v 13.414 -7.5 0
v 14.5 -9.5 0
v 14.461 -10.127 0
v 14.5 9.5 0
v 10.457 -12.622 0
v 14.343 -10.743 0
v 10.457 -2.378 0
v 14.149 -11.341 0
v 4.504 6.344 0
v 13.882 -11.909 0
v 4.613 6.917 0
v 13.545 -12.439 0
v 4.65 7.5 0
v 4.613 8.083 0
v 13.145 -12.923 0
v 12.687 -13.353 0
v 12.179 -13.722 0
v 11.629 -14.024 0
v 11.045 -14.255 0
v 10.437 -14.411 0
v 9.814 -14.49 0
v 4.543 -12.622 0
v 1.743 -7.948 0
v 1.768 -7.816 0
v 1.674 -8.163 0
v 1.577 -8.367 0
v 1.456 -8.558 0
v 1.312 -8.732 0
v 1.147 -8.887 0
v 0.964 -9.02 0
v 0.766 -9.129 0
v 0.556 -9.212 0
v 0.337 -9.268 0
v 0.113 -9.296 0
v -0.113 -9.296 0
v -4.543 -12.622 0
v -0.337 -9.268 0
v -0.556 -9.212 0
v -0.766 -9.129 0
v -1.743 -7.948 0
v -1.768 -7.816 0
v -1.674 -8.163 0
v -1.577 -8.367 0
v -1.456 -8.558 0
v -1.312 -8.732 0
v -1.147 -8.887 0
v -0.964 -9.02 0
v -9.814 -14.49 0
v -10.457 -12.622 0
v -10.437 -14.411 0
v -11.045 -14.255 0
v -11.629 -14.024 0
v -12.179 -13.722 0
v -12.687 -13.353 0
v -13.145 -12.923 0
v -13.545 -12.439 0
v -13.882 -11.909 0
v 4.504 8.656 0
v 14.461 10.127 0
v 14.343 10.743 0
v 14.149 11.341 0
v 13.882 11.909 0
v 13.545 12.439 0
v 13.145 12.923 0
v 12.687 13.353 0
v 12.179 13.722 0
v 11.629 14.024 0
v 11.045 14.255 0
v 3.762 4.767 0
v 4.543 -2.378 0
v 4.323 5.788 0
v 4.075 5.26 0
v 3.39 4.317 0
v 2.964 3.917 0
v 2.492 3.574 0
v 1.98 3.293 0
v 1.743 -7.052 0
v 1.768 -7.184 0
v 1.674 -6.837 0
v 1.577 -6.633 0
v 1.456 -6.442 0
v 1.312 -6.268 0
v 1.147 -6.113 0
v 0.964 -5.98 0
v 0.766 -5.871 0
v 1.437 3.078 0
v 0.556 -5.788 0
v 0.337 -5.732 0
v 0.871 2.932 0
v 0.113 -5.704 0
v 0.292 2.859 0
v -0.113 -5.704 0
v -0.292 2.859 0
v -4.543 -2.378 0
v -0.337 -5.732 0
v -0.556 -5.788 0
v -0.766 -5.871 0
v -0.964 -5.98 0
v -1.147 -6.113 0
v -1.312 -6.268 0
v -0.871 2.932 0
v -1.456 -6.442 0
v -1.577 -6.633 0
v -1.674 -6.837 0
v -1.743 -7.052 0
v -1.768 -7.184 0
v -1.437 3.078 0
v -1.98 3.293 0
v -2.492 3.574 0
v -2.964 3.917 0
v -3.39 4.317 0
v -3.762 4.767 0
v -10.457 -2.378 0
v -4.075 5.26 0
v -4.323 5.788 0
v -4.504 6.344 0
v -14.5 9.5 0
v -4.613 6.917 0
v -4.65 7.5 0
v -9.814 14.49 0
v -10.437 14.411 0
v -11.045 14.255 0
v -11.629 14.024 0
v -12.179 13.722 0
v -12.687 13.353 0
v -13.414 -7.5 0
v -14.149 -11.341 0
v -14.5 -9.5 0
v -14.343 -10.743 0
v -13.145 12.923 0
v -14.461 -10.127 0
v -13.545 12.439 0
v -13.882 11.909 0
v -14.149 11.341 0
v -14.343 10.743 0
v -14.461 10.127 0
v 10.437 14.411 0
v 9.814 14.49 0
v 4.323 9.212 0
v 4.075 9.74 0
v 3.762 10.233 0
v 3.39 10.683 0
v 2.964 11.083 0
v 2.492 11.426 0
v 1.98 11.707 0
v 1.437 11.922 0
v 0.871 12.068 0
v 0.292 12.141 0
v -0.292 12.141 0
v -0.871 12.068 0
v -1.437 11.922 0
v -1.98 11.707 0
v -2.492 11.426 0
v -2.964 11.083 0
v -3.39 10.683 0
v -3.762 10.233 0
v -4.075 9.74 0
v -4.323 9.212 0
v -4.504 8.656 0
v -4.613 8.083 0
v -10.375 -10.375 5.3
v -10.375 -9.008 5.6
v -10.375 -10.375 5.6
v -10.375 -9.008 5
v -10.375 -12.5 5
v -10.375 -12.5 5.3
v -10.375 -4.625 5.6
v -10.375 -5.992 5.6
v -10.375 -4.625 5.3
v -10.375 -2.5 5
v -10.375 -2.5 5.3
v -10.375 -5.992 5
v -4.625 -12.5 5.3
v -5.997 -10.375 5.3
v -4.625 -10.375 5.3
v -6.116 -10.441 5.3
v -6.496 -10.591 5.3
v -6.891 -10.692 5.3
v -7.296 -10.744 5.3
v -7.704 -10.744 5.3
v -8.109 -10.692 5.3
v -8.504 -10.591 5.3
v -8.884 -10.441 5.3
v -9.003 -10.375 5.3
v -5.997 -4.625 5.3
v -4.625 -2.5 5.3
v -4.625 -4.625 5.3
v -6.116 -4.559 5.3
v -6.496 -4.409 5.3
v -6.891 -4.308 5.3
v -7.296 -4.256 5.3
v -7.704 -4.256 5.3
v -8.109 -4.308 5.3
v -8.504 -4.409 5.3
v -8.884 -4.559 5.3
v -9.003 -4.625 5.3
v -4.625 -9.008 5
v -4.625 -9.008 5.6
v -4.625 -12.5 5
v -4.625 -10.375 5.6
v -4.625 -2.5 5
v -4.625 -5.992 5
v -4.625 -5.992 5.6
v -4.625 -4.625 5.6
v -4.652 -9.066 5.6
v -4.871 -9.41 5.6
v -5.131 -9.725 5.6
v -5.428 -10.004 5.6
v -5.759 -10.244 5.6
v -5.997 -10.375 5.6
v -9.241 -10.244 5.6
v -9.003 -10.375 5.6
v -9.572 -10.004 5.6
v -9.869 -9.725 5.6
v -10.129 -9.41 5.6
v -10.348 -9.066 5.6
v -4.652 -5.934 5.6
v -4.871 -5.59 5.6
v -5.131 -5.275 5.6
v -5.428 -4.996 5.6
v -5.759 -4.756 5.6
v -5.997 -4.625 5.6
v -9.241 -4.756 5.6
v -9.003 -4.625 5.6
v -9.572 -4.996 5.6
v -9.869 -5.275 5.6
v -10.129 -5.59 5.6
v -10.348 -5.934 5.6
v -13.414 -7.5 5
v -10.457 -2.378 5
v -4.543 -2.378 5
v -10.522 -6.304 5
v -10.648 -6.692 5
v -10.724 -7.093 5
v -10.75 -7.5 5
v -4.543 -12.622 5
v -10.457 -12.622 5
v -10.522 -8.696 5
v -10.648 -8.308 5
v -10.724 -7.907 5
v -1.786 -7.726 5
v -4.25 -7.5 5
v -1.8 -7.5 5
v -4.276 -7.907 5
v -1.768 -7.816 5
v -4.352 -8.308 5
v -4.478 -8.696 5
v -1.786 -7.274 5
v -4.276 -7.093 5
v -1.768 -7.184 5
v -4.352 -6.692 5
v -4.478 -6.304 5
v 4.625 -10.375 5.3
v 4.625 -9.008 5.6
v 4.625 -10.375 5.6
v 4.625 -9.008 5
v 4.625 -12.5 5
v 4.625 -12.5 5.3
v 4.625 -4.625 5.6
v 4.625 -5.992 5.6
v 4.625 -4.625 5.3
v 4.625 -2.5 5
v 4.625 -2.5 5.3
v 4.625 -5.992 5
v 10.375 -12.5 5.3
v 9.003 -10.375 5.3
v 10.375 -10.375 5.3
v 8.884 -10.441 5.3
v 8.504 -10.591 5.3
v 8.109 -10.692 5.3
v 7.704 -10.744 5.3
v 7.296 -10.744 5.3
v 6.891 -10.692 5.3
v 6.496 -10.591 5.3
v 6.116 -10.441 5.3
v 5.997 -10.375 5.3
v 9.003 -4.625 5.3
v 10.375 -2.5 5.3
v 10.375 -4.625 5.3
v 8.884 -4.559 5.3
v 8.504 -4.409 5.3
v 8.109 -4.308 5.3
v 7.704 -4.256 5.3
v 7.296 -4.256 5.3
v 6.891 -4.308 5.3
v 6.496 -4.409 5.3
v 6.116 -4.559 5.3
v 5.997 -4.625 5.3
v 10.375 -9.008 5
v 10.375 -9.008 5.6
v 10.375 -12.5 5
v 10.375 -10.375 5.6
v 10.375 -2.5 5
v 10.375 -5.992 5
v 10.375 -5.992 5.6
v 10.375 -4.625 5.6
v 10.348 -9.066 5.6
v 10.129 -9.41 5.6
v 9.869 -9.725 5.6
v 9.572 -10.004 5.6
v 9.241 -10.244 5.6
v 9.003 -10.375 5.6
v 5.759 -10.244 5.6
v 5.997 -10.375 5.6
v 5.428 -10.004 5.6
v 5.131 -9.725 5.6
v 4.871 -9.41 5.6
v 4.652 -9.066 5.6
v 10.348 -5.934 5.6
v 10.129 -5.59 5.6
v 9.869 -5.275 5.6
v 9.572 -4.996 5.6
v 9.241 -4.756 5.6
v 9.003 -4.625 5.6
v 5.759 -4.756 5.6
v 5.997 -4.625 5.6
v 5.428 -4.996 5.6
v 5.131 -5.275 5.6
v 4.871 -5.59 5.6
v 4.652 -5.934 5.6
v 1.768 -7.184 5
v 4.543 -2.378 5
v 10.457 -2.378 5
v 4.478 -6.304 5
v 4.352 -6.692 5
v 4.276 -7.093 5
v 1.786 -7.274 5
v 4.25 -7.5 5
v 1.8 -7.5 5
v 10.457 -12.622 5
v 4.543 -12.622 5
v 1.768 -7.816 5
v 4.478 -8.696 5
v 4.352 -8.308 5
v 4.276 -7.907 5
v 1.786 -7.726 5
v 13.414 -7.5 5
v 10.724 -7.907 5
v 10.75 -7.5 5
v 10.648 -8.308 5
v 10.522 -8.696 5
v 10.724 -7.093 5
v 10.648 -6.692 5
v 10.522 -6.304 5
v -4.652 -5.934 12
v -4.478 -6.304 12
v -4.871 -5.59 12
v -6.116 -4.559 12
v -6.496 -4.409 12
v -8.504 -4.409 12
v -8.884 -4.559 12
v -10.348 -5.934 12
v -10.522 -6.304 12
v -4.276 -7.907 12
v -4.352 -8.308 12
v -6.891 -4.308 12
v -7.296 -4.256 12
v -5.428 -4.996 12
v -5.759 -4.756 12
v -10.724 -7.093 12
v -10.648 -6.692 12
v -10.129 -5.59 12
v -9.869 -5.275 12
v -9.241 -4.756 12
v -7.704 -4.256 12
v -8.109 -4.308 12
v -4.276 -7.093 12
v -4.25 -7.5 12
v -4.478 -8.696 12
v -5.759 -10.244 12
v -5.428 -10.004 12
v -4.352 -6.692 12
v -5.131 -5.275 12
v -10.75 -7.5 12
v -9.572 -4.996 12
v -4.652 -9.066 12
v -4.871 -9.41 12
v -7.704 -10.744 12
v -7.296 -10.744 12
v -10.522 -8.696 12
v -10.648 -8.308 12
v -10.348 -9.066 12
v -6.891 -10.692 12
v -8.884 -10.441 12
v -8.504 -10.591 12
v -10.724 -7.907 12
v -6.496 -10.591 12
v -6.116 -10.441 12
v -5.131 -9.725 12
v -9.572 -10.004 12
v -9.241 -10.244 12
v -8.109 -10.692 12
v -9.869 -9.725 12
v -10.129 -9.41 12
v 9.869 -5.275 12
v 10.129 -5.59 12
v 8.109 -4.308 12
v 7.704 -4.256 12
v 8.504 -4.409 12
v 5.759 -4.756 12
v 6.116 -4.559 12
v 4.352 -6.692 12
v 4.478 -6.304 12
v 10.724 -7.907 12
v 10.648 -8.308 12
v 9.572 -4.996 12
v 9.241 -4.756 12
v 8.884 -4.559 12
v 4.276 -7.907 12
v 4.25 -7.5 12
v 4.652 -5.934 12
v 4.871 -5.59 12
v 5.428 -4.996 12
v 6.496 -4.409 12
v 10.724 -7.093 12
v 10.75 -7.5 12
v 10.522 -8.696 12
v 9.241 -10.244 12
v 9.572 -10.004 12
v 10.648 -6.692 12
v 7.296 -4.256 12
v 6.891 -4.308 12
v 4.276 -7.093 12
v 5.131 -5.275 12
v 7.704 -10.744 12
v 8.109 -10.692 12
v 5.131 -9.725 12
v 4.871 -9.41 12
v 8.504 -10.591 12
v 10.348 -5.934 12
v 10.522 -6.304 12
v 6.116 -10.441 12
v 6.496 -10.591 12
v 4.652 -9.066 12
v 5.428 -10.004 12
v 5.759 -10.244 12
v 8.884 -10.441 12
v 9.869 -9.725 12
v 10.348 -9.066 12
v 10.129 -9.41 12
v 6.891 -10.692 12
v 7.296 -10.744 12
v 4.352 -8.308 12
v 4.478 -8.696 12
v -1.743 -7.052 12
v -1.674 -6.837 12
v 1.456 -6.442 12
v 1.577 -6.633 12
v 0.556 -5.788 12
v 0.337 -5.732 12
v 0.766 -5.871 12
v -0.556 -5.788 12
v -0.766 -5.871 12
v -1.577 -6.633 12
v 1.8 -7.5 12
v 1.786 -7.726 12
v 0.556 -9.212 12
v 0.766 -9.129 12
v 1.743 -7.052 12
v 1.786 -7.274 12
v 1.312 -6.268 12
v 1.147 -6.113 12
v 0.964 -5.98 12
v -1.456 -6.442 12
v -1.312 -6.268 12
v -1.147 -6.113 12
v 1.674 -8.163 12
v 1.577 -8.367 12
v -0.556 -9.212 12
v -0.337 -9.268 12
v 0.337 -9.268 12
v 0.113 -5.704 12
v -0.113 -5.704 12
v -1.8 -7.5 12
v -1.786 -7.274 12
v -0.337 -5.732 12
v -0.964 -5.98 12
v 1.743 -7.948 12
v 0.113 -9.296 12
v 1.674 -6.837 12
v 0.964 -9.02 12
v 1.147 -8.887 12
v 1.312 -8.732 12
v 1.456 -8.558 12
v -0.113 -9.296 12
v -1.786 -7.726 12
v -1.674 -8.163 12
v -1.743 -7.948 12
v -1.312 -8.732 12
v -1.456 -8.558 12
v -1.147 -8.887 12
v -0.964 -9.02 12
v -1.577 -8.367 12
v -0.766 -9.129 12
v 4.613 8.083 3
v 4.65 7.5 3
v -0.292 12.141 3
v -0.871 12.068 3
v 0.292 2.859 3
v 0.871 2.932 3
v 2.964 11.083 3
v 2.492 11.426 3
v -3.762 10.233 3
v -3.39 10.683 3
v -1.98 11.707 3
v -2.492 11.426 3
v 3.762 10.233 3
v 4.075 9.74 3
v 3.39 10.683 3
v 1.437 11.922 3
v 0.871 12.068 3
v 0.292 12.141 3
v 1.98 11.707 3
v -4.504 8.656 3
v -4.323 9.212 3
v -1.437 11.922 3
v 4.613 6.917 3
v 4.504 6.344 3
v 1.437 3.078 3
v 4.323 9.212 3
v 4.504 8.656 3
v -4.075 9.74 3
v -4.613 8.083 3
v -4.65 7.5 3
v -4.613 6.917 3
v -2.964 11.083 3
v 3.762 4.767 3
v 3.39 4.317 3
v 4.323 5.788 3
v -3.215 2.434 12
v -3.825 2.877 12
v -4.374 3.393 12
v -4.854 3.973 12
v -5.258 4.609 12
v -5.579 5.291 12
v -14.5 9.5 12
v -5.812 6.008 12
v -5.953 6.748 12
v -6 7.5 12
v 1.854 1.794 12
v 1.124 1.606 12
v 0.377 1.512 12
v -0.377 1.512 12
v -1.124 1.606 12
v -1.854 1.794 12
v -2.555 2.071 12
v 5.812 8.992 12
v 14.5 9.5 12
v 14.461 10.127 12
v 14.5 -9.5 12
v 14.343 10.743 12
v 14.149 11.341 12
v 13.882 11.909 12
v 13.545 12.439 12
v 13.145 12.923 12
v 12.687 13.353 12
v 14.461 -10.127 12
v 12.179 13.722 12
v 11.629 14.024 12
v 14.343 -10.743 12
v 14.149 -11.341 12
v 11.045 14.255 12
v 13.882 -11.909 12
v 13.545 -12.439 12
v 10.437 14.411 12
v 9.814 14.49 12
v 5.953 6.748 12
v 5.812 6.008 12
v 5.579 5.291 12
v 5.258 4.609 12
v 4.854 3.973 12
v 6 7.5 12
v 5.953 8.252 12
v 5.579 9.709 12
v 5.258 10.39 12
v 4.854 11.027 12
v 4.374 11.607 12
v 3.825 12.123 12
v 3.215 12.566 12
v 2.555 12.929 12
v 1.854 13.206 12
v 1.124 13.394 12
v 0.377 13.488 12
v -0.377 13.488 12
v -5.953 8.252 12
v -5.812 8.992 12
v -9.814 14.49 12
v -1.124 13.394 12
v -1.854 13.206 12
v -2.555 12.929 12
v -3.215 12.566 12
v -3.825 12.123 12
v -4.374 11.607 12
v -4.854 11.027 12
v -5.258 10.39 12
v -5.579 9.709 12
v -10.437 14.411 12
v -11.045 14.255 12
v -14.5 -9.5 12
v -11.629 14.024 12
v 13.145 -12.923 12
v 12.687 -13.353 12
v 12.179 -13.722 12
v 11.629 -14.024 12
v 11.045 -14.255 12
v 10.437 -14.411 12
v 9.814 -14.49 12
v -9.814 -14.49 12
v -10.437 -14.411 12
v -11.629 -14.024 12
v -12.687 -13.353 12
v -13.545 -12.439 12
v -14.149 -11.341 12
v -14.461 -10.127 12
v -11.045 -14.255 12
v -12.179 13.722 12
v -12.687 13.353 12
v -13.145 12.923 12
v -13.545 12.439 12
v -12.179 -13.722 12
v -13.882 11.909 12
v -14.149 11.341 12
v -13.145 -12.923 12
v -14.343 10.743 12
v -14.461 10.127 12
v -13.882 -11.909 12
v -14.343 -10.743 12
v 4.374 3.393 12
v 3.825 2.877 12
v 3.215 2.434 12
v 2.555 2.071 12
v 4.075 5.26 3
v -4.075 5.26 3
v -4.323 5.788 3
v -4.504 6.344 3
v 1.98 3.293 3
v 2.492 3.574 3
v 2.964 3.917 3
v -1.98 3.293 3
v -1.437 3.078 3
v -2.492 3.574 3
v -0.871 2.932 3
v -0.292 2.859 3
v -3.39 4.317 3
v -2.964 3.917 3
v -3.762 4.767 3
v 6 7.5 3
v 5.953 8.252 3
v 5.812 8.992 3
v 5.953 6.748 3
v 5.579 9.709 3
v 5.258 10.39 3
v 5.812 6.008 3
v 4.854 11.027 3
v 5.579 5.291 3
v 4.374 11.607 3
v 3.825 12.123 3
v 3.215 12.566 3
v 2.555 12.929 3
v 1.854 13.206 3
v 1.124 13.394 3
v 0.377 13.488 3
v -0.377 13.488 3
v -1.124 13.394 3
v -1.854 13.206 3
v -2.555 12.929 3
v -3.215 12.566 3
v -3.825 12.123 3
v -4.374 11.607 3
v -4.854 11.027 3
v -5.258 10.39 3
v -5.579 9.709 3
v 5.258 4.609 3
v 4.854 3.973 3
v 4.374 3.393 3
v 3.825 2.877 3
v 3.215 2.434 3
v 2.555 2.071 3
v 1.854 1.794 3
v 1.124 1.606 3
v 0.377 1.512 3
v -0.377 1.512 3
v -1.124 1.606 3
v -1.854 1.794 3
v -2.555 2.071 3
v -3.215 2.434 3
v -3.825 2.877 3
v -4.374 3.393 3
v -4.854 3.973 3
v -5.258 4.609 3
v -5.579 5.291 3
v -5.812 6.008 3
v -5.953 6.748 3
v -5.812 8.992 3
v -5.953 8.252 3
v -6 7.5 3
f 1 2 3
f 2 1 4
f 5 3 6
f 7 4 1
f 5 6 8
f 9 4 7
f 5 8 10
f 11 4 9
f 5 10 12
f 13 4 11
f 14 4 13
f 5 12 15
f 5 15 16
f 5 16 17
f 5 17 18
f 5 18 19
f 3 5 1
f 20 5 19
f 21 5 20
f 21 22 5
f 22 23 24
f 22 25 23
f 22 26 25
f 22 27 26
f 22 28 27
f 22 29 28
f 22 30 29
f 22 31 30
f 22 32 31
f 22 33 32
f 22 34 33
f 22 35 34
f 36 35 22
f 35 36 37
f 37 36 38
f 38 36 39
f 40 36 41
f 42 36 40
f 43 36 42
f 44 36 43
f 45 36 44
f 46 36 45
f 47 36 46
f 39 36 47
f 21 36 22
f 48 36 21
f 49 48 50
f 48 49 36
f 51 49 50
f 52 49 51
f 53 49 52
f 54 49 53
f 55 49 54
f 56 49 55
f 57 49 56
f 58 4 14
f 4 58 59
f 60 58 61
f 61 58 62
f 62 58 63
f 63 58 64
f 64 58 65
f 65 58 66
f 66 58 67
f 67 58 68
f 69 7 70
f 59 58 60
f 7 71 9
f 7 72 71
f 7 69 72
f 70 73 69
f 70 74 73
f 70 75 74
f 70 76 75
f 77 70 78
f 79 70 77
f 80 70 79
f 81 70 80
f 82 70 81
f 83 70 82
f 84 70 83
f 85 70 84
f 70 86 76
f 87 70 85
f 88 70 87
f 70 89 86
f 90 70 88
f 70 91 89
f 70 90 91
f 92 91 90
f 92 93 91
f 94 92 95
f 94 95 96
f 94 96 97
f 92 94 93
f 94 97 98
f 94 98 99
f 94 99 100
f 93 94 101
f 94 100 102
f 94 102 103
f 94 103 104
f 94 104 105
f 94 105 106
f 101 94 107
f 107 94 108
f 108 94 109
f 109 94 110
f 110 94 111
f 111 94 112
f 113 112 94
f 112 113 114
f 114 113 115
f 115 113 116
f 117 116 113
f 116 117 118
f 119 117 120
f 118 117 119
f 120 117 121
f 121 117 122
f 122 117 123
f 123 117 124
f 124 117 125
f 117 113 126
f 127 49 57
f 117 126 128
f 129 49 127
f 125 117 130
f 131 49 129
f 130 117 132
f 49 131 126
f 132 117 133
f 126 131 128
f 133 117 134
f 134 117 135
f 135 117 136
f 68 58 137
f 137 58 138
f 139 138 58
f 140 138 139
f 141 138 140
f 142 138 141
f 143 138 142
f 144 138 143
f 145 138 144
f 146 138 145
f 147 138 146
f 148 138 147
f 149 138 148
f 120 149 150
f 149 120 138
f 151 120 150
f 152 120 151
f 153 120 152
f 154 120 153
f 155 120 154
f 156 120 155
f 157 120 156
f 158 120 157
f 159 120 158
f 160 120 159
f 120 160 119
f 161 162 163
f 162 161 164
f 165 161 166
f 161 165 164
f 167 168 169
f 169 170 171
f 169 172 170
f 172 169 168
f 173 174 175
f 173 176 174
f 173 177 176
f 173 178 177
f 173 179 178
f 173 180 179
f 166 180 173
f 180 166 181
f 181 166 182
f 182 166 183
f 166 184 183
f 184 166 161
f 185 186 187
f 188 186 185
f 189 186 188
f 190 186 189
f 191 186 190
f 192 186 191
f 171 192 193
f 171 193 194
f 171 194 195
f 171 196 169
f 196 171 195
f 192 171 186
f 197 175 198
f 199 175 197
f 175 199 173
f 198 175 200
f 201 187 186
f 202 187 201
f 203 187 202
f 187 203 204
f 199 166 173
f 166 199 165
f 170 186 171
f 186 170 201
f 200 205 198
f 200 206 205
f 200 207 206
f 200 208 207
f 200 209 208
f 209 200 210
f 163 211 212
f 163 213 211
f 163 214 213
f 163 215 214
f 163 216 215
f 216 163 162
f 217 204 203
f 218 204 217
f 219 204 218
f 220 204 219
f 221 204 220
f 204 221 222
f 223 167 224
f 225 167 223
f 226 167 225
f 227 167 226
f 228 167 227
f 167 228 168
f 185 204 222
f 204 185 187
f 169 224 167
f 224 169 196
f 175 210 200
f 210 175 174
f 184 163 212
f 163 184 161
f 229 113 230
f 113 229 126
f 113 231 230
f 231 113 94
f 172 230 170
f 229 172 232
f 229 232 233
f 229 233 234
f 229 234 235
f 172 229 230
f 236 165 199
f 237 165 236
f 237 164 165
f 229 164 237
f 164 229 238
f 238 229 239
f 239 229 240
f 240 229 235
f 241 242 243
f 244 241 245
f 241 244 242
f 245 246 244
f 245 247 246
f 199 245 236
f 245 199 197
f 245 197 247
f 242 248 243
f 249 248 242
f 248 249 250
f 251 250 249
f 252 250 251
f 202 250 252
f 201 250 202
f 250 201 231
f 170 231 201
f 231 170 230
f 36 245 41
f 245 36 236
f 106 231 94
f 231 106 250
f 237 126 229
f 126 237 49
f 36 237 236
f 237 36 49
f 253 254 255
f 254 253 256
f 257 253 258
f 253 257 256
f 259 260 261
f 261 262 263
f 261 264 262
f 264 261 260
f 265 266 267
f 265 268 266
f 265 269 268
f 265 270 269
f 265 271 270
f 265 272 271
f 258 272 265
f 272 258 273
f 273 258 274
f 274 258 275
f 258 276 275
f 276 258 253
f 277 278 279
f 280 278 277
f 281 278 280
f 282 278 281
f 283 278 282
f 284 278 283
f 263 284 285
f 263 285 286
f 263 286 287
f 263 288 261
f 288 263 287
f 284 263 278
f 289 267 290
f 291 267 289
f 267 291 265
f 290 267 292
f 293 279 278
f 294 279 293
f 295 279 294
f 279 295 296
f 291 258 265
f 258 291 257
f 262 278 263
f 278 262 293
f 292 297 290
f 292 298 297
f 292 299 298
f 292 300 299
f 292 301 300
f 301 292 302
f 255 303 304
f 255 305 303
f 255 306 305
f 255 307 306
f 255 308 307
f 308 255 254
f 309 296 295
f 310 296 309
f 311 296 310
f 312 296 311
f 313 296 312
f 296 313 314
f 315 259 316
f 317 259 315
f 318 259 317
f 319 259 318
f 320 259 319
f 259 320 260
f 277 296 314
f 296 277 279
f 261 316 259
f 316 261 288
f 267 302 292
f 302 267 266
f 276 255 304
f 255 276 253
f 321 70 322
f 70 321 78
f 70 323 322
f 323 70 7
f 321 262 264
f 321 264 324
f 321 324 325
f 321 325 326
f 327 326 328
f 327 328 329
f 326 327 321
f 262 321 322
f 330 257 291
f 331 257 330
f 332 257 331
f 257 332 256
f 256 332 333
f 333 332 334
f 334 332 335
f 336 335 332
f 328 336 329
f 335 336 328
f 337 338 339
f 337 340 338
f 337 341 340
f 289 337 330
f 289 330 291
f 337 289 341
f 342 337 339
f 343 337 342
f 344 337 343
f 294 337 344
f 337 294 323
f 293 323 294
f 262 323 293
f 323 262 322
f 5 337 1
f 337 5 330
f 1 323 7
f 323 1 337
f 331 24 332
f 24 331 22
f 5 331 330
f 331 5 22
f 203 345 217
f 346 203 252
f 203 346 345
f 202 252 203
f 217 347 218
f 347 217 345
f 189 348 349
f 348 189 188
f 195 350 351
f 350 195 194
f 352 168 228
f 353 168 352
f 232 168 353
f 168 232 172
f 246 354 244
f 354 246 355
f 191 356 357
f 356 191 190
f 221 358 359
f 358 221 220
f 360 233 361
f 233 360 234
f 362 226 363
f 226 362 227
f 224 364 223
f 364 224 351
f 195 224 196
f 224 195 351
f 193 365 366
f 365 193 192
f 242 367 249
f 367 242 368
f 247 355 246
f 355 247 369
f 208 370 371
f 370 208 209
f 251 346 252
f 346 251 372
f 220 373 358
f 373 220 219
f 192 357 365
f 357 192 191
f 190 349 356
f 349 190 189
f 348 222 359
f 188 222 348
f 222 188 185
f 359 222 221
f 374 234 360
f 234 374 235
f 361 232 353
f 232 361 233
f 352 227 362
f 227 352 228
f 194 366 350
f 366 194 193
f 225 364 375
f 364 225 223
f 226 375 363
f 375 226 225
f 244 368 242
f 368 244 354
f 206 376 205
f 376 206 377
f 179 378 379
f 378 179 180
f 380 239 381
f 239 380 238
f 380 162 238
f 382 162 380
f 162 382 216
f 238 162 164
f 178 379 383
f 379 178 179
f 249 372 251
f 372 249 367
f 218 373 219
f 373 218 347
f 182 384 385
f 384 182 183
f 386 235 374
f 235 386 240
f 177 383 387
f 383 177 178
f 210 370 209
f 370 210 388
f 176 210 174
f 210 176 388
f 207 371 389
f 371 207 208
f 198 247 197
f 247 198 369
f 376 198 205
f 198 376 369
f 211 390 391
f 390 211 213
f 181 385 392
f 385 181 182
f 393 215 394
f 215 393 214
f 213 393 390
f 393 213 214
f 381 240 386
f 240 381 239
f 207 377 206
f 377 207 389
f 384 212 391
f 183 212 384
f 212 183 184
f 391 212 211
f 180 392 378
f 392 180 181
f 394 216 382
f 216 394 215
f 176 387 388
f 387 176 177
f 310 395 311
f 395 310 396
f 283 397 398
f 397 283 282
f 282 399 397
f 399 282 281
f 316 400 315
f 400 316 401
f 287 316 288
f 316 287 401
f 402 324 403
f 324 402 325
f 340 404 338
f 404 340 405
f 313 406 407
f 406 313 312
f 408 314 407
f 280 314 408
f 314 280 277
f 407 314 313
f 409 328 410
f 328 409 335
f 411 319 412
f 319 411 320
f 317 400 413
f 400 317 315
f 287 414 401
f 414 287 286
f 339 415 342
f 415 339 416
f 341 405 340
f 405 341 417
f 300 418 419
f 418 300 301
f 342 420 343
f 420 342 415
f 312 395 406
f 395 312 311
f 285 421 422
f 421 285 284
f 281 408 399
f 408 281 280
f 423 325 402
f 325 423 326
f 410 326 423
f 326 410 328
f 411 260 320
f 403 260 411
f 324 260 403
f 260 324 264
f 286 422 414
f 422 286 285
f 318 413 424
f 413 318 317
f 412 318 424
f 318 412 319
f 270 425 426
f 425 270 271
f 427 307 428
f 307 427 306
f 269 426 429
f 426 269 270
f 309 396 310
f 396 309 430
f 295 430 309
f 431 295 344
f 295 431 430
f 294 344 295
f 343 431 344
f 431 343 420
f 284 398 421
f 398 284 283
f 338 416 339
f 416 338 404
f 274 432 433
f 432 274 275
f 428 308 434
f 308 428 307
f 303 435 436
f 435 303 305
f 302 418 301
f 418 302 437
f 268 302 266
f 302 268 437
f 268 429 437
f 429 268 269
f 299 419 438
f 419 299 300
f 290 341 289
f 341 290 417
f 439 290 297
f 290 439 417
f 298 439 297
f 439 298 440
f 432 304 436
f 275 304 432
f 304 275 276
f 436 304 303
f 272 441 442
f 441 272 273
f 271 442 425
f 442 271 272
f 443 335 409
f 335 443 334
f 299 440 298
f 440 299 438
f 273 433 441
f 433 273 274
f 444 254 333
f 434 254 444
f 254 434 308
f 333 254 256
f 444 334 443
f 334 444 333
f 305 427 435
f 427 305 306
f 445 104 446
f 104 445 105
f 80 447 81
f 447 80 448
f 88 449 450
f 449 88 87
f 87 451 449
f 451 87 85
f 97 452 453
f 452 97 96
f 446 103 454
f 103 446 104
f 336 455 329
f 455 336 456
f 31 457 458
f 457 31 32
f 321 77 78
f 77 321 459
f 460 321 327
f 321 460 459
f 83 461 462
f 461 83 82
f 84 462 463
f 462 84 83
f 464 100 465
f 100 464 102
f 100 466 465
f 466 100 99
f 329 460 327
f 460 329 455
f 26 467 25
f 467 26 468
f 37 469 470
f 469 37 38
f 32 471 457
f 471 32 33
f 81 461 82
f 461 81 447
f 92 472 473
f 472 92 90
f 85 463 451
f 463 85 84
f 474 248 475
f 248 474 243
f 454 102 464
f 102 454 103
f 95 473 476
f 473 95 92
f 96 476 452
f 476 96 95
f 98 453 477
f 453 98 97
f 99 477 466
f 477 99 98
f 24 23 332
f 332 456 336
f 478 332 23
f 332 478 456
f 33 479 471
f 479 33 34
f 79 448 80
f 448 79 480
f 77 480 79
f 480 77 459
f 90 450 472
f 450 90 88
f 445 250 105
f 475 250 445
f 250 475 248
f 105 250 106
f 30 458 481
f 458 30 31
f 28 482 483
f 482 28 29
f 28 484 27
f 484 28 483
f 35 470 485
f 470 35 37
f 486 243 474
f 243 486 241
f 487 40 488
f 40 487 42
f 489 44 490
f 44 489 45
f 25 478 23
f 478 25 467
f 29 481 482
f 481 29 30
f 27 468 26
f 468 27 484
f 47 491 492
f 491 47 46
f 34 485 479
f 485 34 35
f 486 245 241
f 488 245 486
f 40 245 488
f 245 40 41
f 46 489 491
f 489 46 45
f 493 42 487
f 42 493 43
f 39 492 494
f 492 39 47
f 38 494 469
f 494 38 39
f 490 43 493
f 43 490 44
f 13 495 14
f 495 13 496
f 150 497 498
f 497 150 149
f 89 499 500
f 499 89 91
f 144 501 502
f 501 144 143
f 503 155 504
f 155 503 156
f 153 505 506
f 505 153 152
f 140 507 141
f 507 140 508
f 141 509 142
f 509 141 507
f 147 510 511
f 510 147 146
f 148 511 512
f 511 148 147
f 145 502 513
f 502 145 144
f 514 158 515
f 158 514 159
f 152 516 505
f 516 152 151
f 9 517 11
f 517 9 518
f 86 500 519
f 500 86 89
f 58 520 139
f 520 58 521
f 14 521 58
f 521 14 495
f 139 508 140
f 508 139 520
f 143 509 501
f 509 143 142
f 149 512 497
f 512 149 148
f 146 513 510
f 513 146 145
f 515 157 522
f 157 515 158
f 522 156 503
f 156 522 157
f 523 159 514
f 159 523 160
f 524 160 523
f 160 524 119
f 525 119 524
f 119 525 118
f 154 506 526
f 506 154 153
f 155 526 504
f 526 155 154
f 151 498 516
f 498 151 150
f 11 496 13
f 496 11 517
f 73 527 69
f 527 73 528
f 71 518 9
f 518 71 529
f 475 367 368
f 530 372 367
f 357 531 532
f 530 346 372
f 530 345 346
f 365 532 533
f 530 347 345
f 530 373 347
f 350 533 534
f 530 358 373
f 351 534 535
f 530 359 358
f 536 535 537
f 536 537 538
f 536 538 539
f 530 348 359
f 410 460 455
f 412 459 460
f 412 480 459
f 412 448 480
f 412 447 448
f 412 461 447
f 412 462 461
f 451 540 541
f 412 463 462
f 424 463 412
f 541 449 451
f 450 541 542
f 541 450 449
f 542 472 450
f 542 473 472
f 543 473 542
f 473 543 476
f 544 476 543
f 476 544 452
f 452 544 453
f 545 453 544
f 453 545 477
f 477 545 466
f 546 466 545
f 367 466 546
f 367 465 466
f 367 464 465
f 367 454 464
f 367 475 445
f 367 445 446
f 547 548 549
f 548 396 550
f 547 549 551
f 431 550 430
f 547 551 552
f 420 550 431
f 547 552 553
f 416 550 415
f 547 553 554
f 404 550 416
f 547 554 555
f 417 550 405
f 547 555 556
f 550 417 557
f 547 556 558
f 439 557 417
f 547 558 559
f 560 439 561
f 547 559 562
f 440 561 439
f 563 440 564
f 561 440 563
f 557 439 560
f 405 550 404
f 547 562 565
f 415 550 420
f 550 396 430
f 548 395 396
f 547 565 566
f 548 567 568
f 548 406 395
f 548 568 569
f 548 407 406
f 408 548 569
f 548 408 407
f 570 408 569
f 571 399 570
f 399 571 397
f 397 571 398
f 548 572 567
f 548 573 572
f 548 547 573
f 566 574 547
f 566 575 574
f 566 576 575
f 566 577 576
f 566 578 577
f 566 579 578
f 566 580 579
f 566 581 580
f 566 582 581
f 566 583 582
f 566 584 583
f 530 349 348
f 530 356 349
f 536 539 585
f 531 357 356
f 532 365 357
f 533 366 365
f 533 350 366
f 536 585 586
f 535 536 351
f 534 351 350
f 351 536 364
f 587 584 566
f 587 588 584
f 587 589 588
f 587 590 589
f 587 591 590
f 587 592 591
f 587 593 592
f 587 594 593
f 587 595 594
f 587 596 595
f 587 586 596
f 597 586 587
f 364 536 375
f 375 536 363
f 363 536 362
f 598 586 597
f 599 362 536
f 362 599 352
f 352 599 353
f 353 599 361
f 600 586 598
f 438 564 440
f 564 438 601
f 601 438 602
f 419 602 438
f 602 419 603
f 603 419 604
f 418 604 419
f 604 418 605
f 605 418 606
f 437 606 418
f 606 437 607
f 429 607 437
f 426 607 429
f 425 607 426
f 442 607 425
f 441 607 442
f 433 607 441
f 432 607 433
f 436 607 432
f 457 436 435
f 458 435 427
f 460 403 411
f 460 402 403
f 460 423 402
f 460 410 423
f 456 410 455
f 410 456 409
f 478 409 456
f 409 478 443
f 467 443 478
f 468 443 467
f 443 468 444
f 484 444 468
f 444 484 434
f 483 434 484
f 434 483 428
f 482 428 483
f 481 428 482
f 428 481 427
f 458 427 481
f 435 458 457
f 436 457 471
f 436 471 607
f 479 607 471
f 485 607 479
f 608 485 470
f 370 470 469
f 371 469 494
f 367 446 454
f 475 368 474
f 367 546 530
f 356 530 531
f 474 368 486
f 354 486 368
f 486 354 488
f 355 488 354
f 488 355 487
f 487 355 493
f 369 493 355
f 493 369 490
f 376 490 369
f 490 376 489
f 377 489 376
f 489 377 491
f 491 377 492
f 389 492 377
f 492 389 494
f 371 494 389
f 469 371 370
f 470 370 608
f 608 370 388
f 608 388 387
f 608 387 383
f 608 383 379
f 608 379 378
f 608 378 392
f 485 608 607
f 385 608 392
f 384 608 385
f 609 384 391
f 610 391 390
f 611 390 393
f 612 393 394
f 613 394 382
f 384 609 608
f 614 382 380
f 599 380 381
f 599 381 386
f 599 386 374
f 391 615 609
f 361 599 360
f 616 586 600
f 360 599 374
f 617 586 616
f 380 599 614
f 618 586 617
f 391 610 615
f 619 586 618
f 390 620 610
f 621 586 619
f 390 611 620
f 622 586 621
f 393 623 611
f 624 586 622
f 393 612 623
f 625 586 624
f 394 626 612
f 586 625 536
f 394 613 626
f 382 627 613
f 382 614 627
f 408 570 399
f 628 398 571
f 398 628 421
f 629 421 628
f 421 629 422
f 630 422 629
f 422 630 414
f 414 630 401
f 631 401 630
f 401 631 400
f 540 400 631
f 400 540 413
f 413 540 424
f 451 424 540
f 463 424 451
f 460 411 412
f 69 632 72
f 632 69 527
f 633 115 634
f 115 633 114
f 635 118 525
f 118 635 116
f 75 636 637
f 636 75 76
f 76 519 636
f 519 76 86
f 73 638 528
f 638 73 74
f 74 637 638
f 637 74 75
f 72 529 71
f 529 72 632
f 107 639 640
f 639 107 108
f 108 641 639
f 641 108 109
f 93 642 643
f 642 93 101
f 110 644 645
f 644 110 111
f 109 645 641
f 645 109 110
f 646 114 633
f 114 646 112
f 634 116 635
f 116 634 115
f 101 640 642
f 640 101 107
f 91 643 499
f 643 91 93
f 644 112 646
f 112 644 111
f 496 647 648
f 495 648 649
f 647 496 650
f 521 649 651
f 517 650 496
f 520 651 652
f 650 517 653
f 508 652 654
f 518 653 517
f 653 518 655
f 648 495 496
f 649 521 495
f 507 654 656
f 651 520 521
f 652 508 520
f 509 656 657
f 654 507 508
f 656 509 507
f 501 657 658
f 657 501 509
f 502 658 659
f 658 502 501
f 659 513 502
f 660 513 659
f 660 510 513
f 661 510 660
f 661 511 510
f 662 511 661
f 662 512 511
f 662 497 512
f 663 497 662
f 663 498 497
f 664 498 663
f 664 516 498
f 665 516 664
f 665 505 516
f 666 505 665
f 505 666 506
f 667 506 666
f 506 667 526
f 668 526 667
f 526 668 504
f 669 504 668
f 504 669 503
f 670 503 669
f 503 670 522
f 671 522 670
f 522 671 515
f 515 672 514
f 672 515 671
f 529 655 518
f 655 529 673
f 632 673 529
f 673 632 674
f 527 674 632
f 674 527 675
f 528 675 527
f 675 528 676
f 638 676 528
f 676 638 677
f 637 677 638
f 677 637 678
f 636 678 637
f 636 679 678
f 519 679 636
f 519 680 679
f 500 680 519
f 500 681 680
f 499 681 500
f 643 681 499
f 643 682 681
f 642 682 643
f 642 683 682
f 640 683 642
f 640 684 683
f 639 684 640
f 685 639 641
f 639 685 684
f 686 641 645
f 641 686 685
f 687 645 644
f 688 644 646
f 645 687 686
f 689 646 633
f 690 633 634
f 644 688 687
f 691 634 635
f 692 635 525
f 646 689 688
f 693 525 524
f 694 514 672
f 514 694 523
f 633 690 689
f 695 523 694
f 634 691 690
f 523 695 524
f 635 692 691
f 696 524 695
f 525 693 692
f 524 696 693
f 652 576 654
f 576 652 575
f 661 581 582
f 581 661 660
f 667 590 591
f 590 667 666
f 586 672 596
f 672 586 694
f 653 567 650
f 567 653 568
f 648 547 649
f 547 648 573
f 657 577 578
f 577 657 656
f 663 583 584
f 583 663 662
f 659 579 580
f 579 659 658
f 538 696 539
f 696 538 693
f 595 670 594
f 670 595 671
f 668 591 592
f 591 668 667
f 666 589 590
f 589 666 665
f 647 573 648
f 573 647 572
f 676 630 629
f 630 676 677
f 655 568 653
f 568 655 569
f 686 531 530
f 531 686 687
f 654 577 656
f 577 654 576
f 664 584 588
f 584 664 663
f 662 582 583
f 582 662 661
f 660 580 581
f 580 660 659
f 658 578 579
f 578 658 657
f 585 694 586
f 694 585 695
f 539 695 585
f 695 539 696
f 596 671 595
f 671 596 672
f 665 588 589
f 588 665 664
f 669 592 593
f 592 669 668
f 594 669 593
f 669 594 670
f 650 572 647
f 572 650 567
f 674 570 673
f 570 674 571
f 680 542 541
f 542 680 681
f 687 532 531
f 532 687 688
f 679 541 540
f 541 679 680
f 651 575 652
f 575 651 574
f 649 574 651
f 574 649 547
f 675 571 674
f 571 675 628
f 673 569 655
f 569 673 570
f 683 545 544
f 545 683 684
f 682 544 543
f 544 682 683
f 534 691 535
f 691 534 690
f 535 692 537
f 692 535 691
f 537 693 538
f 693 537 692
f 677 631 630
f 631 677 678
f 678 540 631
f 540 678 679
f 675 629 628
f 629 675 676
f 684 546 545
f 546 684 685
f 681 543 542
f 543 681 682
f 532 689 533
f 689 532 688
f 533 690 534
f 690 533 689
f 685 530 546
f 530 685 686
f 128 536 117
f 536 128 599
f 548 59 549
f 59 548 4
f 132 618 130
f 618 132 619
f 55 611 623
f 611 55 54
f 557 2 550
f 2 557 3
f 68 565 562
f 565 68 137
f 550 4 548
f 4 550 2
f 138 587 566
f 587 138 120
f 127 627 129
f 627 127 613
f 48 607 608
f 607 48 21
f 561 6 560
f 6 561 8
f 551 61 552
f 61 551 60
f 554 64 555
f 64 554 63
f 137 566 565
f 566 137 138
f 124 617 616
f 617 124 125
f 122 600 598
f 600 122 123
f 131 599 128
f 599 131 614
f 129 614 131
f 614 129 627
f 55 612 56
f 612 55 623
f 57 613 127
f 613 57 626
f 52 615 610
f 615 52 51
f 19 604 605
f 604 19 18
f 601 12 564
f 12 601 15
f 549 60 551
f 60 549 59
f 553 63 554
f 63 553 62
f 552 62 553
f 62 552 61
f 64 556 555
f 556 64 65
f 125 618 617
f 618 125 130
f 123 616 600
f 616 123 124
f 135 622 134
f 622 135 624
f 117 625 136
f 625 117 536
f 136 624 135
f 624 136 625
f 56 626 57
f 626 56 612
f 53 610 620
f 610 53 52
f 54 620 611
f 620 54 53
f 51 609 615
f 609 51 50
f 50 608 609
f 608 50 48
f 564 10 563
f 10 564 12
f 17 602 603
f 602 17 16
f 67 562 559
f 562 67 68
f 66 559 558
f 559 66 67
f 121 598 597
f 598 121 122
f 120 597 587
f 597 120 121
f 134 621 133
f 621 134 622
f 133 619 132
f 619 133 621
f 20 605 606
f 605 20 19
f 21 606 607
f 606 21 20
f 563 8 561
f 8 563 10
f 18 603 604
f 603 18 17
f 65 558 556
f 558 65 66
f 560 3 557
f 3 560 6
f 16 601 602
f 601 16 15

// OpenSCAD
$fn = 50;


difference() {
	union() {
		hull() {
			translate(v = [-9.5000000000, 9.5000000000, 0]) {
				cylinder(h = 12, r = 5);
			}
			translate(v = [9.5000000000, 9.5000000000, 0]) {
				cylinder(h = 12, r = 5);
			}
			translate(v = [-9.5000000000, -9.5000000000, 0]) {
				cylinder(h = 12, r = 5);
			}
			translate(v = [9.5000000000, -9.5000000000, 0]) {
				cylinder(h = 12, r = 5);
			}
		}
	}
	union() {
		translate(v = [-7.5000000000, -7.5000000000, 0]) {
			rotate(a = [0, 0, 0]) {
				difference() {
					union() {
						#translate(v = [-2.8750000000, -5.0000000000, -0.3000000000]) {
							cube(size = [5.7500000000, 10, 0.3000000000]);
						}
						#translate(v = [-2.8750000000, -2.8750000000, -0.6000000000]) {
							cube(size = [5.7500000000, 5.7500000000, 0.3000000000]);
						}
						#translate(v = [-2.8750000000, -5.0000000000, 5]) {
							cube(size = [5.7500000000, 10, 0.3000000000]);
						}
						#translate(v = [-2.8750000000, -2.8750000000, 5.3000000000]) {
							cube(size = [5.7500000000, 5.7500000000, 0.3000000000]);
						}
						#linear_extrude(height = 5) {
							polygon(points = [[5.9142500000, 0.0000000000], [2.9571250000, 5.1218907443], [-2.9571250000, 5.1218907443], [-5.9142500000, 0.0000000000], [-2.9571250000, -5.1218907443], [2.9571250000, -5.1218907443]]);
						}
						#translate(v = [-2.8750000000, -5.0000000000, -0.3000000000]) {
							cube(size = [5.7500000000, 10, 0.3000000000]);
						}
						#translate(v = [-2.8750000000, -2.8750000000, -0.6000000000]) {
							cube(size = [5.7500000000, 5.7500000000, 0.3000000000]);
						}
						#translate(v = [-2.8750000000, -5.0000000000, 5]) {
							cube(size = [5.7500000000, 10, 0.3000000000]);
						}
						#translate(v = [-2.8750000000, -2.8750000000, 5.3000000000]) {
							cube(size = [5.7500000000, 5.7500000000, 0.3000000000]);
						}
						#translate(v = [-2.8750000000, -5.0000000000, -0.3000000000]) {
							cube(size = [5.7500000000, 10, 0.3000000000]);
						}
						#translate(v = [-2.8750000000, -2.8750000000, -0.6000000000]) {
							cube(size = [5.7500000000, 5.7500000000, 0.3000000000]);
						}
						#translate(v = [-2.8750000000, -5.0000000000, 5]) {
							cube(size = [5.7500000000, 10, 0.3000000000]);
						}
						#translate(v = [-2.8750000000, -2.8750000000, 5.3000000000]) {
							cube(size = [5.7500000000, 5.7500000000, 0.3000000000]);
						}
					}
					union();
				}
			}
		}
		translate(v = [7.5000000000, -7.5000000000, 0]) {
			rotate(a = [0, 0, 0]) {
				difference() {
					union() {
						#translate(v = [-2.8750000000, -5.0000000000, -0.3000000000]) {
							cube(size = [5.7500000000, 10, 0.3000000000]);
						}
						#translate(v = [-2.8750000000, -2.8750000000, -0.6000000000]) {
							cube(size = [5.7500000000, 5.7500000000, 0.3000000000]);
						}
						#translate(v = [-2.8750000000, -5.0000000000, 5]) {
							cube(size = [5.7500000000, 10, 0.3000000000]);
						}
						#translate(v = [-2.8750000000, -2.8750000000, 5.3000000000]) {
							cube(size = [5.7500000000, 5.7500000000, 0.3000000000]);
						}
						#linear_extrude(height = 5) {
							polygon(points = [[5.9142500000, 0.0000000000], [2.9571250000, 5.1218907443], [-2.9571250000, 5.1218907443], [-5.9142500000, 0.0000000000], [-2.9571250000, -5.1218907443], [2.9571250000, -5.1218907443]]);
						}
						#translate(v = [-2.8750000000, -5.0000000000, -0.3000000000]) {
							cube(size = [5.7500000000, 10, 0.3000000000]);
						}
						#translate(v = [-2.8750000000, -2.8750000000, -0.6000000000]) {
							cube(size = [5.7500000000, 5.7500000000, 0.3000000000]);
						}
						#translate(v = [-2.8750000000, -5.0000000000, 5]) {
							cube(size = [5.7500000000, 10, 0.3000000000]);
						}
						#translate(v = [-2.8750000000, -2.8750000000, 5.3000000000]) {
							cube(size = [5.7500000000, 5.7500000000, 0.3000000000]);
						}
						#translate(v = [-2.8750000000, -5.0000000000, -0.3000000000]) {
							cube(size = [5.7500000000, 10, 0.3000000000]);
						}
						#translate(v = [-2.8750000000, -2.8750000000, -0.6000000000]) {
							cube(size = [5.7500000000, 5.7500000000, 0.3000000000]);
						}
						#translate(v = [-2.8750000000, -5.0000000000, 5]) {
							cube(size = [5.7500000000, 10, 0.3000000000]);
						}
						#translate(v = [-2.8750000000, -2.8750000000, 5.3000000000]) {
							cube(size = [5.7500000000, 5.7500000000, 0.3000000000]);
						}
					}
					union();
				}
			}
		}
		translate(v = [-7.5000000000, -7.5000000000, -100.0000000000]) {
			cylinder(h = 200, r = 3.2500000000);
		}
		translate(v = [7.5000000000, -7.5000000000, -100.0000000000]) {
			cylinder(h = 200, r = 3.2500000000);
		}
		translate(v = [-7.5000000000, -7.5000000000, -100.0000000000]) {
			cylinder(h = 200, r = 1.8000000000);
		}
		translate(v = [0.0000000000, -7.5000000000, -100.0000000000]) {
			cylinder(h = 200, r = 1.8000000000);
		}
		translate(v = [7.5000000000, -7.5000000000, -100.0000000000]) {
			cylinder(h = 200, r = 1.8000000000);
		}
		translate(v = [-7.5000000000, -7.5000000000, -100.0000000000]) {
			cylinder(h = 200, r = 1.8000000000);
		}
		translate(v = [0.0000000000, -7.5000000000, -100.0000000000]) {
			cylinder(h = 200, r = 1.8000000000);
		}
		translate(v = [7.5000000000, -7.5000000000, -100.0000000000]) {
			cylinder(h = 200, r = 1.8000000000);
		}
		translate(v = [-7.5000000000, -7.5000000000, -100.0000000000]) {
			cylinder(h = 200, r = 1.8000000000);
		}
		translate(v = [0.0000000000, -7.5000000000, -100.0000000000]) {
			cylinder(h = 200, r = 1.8000000000);
		}
		translate(v = [7.5000000000, -7.5000000000, -100.0000000000]) {
			cylinder(h = 200, r = 1.8000000000);
		}
		#translate(v = [0, 7.5000000000, 0]) {
			cylinder(h = 12, r = 4.6500000000);
		}
		#translate(v = [0, 7.5000000000, 3]) {
			cylinder(h = 9, r = 6.0000000000);
		}
	}
}
